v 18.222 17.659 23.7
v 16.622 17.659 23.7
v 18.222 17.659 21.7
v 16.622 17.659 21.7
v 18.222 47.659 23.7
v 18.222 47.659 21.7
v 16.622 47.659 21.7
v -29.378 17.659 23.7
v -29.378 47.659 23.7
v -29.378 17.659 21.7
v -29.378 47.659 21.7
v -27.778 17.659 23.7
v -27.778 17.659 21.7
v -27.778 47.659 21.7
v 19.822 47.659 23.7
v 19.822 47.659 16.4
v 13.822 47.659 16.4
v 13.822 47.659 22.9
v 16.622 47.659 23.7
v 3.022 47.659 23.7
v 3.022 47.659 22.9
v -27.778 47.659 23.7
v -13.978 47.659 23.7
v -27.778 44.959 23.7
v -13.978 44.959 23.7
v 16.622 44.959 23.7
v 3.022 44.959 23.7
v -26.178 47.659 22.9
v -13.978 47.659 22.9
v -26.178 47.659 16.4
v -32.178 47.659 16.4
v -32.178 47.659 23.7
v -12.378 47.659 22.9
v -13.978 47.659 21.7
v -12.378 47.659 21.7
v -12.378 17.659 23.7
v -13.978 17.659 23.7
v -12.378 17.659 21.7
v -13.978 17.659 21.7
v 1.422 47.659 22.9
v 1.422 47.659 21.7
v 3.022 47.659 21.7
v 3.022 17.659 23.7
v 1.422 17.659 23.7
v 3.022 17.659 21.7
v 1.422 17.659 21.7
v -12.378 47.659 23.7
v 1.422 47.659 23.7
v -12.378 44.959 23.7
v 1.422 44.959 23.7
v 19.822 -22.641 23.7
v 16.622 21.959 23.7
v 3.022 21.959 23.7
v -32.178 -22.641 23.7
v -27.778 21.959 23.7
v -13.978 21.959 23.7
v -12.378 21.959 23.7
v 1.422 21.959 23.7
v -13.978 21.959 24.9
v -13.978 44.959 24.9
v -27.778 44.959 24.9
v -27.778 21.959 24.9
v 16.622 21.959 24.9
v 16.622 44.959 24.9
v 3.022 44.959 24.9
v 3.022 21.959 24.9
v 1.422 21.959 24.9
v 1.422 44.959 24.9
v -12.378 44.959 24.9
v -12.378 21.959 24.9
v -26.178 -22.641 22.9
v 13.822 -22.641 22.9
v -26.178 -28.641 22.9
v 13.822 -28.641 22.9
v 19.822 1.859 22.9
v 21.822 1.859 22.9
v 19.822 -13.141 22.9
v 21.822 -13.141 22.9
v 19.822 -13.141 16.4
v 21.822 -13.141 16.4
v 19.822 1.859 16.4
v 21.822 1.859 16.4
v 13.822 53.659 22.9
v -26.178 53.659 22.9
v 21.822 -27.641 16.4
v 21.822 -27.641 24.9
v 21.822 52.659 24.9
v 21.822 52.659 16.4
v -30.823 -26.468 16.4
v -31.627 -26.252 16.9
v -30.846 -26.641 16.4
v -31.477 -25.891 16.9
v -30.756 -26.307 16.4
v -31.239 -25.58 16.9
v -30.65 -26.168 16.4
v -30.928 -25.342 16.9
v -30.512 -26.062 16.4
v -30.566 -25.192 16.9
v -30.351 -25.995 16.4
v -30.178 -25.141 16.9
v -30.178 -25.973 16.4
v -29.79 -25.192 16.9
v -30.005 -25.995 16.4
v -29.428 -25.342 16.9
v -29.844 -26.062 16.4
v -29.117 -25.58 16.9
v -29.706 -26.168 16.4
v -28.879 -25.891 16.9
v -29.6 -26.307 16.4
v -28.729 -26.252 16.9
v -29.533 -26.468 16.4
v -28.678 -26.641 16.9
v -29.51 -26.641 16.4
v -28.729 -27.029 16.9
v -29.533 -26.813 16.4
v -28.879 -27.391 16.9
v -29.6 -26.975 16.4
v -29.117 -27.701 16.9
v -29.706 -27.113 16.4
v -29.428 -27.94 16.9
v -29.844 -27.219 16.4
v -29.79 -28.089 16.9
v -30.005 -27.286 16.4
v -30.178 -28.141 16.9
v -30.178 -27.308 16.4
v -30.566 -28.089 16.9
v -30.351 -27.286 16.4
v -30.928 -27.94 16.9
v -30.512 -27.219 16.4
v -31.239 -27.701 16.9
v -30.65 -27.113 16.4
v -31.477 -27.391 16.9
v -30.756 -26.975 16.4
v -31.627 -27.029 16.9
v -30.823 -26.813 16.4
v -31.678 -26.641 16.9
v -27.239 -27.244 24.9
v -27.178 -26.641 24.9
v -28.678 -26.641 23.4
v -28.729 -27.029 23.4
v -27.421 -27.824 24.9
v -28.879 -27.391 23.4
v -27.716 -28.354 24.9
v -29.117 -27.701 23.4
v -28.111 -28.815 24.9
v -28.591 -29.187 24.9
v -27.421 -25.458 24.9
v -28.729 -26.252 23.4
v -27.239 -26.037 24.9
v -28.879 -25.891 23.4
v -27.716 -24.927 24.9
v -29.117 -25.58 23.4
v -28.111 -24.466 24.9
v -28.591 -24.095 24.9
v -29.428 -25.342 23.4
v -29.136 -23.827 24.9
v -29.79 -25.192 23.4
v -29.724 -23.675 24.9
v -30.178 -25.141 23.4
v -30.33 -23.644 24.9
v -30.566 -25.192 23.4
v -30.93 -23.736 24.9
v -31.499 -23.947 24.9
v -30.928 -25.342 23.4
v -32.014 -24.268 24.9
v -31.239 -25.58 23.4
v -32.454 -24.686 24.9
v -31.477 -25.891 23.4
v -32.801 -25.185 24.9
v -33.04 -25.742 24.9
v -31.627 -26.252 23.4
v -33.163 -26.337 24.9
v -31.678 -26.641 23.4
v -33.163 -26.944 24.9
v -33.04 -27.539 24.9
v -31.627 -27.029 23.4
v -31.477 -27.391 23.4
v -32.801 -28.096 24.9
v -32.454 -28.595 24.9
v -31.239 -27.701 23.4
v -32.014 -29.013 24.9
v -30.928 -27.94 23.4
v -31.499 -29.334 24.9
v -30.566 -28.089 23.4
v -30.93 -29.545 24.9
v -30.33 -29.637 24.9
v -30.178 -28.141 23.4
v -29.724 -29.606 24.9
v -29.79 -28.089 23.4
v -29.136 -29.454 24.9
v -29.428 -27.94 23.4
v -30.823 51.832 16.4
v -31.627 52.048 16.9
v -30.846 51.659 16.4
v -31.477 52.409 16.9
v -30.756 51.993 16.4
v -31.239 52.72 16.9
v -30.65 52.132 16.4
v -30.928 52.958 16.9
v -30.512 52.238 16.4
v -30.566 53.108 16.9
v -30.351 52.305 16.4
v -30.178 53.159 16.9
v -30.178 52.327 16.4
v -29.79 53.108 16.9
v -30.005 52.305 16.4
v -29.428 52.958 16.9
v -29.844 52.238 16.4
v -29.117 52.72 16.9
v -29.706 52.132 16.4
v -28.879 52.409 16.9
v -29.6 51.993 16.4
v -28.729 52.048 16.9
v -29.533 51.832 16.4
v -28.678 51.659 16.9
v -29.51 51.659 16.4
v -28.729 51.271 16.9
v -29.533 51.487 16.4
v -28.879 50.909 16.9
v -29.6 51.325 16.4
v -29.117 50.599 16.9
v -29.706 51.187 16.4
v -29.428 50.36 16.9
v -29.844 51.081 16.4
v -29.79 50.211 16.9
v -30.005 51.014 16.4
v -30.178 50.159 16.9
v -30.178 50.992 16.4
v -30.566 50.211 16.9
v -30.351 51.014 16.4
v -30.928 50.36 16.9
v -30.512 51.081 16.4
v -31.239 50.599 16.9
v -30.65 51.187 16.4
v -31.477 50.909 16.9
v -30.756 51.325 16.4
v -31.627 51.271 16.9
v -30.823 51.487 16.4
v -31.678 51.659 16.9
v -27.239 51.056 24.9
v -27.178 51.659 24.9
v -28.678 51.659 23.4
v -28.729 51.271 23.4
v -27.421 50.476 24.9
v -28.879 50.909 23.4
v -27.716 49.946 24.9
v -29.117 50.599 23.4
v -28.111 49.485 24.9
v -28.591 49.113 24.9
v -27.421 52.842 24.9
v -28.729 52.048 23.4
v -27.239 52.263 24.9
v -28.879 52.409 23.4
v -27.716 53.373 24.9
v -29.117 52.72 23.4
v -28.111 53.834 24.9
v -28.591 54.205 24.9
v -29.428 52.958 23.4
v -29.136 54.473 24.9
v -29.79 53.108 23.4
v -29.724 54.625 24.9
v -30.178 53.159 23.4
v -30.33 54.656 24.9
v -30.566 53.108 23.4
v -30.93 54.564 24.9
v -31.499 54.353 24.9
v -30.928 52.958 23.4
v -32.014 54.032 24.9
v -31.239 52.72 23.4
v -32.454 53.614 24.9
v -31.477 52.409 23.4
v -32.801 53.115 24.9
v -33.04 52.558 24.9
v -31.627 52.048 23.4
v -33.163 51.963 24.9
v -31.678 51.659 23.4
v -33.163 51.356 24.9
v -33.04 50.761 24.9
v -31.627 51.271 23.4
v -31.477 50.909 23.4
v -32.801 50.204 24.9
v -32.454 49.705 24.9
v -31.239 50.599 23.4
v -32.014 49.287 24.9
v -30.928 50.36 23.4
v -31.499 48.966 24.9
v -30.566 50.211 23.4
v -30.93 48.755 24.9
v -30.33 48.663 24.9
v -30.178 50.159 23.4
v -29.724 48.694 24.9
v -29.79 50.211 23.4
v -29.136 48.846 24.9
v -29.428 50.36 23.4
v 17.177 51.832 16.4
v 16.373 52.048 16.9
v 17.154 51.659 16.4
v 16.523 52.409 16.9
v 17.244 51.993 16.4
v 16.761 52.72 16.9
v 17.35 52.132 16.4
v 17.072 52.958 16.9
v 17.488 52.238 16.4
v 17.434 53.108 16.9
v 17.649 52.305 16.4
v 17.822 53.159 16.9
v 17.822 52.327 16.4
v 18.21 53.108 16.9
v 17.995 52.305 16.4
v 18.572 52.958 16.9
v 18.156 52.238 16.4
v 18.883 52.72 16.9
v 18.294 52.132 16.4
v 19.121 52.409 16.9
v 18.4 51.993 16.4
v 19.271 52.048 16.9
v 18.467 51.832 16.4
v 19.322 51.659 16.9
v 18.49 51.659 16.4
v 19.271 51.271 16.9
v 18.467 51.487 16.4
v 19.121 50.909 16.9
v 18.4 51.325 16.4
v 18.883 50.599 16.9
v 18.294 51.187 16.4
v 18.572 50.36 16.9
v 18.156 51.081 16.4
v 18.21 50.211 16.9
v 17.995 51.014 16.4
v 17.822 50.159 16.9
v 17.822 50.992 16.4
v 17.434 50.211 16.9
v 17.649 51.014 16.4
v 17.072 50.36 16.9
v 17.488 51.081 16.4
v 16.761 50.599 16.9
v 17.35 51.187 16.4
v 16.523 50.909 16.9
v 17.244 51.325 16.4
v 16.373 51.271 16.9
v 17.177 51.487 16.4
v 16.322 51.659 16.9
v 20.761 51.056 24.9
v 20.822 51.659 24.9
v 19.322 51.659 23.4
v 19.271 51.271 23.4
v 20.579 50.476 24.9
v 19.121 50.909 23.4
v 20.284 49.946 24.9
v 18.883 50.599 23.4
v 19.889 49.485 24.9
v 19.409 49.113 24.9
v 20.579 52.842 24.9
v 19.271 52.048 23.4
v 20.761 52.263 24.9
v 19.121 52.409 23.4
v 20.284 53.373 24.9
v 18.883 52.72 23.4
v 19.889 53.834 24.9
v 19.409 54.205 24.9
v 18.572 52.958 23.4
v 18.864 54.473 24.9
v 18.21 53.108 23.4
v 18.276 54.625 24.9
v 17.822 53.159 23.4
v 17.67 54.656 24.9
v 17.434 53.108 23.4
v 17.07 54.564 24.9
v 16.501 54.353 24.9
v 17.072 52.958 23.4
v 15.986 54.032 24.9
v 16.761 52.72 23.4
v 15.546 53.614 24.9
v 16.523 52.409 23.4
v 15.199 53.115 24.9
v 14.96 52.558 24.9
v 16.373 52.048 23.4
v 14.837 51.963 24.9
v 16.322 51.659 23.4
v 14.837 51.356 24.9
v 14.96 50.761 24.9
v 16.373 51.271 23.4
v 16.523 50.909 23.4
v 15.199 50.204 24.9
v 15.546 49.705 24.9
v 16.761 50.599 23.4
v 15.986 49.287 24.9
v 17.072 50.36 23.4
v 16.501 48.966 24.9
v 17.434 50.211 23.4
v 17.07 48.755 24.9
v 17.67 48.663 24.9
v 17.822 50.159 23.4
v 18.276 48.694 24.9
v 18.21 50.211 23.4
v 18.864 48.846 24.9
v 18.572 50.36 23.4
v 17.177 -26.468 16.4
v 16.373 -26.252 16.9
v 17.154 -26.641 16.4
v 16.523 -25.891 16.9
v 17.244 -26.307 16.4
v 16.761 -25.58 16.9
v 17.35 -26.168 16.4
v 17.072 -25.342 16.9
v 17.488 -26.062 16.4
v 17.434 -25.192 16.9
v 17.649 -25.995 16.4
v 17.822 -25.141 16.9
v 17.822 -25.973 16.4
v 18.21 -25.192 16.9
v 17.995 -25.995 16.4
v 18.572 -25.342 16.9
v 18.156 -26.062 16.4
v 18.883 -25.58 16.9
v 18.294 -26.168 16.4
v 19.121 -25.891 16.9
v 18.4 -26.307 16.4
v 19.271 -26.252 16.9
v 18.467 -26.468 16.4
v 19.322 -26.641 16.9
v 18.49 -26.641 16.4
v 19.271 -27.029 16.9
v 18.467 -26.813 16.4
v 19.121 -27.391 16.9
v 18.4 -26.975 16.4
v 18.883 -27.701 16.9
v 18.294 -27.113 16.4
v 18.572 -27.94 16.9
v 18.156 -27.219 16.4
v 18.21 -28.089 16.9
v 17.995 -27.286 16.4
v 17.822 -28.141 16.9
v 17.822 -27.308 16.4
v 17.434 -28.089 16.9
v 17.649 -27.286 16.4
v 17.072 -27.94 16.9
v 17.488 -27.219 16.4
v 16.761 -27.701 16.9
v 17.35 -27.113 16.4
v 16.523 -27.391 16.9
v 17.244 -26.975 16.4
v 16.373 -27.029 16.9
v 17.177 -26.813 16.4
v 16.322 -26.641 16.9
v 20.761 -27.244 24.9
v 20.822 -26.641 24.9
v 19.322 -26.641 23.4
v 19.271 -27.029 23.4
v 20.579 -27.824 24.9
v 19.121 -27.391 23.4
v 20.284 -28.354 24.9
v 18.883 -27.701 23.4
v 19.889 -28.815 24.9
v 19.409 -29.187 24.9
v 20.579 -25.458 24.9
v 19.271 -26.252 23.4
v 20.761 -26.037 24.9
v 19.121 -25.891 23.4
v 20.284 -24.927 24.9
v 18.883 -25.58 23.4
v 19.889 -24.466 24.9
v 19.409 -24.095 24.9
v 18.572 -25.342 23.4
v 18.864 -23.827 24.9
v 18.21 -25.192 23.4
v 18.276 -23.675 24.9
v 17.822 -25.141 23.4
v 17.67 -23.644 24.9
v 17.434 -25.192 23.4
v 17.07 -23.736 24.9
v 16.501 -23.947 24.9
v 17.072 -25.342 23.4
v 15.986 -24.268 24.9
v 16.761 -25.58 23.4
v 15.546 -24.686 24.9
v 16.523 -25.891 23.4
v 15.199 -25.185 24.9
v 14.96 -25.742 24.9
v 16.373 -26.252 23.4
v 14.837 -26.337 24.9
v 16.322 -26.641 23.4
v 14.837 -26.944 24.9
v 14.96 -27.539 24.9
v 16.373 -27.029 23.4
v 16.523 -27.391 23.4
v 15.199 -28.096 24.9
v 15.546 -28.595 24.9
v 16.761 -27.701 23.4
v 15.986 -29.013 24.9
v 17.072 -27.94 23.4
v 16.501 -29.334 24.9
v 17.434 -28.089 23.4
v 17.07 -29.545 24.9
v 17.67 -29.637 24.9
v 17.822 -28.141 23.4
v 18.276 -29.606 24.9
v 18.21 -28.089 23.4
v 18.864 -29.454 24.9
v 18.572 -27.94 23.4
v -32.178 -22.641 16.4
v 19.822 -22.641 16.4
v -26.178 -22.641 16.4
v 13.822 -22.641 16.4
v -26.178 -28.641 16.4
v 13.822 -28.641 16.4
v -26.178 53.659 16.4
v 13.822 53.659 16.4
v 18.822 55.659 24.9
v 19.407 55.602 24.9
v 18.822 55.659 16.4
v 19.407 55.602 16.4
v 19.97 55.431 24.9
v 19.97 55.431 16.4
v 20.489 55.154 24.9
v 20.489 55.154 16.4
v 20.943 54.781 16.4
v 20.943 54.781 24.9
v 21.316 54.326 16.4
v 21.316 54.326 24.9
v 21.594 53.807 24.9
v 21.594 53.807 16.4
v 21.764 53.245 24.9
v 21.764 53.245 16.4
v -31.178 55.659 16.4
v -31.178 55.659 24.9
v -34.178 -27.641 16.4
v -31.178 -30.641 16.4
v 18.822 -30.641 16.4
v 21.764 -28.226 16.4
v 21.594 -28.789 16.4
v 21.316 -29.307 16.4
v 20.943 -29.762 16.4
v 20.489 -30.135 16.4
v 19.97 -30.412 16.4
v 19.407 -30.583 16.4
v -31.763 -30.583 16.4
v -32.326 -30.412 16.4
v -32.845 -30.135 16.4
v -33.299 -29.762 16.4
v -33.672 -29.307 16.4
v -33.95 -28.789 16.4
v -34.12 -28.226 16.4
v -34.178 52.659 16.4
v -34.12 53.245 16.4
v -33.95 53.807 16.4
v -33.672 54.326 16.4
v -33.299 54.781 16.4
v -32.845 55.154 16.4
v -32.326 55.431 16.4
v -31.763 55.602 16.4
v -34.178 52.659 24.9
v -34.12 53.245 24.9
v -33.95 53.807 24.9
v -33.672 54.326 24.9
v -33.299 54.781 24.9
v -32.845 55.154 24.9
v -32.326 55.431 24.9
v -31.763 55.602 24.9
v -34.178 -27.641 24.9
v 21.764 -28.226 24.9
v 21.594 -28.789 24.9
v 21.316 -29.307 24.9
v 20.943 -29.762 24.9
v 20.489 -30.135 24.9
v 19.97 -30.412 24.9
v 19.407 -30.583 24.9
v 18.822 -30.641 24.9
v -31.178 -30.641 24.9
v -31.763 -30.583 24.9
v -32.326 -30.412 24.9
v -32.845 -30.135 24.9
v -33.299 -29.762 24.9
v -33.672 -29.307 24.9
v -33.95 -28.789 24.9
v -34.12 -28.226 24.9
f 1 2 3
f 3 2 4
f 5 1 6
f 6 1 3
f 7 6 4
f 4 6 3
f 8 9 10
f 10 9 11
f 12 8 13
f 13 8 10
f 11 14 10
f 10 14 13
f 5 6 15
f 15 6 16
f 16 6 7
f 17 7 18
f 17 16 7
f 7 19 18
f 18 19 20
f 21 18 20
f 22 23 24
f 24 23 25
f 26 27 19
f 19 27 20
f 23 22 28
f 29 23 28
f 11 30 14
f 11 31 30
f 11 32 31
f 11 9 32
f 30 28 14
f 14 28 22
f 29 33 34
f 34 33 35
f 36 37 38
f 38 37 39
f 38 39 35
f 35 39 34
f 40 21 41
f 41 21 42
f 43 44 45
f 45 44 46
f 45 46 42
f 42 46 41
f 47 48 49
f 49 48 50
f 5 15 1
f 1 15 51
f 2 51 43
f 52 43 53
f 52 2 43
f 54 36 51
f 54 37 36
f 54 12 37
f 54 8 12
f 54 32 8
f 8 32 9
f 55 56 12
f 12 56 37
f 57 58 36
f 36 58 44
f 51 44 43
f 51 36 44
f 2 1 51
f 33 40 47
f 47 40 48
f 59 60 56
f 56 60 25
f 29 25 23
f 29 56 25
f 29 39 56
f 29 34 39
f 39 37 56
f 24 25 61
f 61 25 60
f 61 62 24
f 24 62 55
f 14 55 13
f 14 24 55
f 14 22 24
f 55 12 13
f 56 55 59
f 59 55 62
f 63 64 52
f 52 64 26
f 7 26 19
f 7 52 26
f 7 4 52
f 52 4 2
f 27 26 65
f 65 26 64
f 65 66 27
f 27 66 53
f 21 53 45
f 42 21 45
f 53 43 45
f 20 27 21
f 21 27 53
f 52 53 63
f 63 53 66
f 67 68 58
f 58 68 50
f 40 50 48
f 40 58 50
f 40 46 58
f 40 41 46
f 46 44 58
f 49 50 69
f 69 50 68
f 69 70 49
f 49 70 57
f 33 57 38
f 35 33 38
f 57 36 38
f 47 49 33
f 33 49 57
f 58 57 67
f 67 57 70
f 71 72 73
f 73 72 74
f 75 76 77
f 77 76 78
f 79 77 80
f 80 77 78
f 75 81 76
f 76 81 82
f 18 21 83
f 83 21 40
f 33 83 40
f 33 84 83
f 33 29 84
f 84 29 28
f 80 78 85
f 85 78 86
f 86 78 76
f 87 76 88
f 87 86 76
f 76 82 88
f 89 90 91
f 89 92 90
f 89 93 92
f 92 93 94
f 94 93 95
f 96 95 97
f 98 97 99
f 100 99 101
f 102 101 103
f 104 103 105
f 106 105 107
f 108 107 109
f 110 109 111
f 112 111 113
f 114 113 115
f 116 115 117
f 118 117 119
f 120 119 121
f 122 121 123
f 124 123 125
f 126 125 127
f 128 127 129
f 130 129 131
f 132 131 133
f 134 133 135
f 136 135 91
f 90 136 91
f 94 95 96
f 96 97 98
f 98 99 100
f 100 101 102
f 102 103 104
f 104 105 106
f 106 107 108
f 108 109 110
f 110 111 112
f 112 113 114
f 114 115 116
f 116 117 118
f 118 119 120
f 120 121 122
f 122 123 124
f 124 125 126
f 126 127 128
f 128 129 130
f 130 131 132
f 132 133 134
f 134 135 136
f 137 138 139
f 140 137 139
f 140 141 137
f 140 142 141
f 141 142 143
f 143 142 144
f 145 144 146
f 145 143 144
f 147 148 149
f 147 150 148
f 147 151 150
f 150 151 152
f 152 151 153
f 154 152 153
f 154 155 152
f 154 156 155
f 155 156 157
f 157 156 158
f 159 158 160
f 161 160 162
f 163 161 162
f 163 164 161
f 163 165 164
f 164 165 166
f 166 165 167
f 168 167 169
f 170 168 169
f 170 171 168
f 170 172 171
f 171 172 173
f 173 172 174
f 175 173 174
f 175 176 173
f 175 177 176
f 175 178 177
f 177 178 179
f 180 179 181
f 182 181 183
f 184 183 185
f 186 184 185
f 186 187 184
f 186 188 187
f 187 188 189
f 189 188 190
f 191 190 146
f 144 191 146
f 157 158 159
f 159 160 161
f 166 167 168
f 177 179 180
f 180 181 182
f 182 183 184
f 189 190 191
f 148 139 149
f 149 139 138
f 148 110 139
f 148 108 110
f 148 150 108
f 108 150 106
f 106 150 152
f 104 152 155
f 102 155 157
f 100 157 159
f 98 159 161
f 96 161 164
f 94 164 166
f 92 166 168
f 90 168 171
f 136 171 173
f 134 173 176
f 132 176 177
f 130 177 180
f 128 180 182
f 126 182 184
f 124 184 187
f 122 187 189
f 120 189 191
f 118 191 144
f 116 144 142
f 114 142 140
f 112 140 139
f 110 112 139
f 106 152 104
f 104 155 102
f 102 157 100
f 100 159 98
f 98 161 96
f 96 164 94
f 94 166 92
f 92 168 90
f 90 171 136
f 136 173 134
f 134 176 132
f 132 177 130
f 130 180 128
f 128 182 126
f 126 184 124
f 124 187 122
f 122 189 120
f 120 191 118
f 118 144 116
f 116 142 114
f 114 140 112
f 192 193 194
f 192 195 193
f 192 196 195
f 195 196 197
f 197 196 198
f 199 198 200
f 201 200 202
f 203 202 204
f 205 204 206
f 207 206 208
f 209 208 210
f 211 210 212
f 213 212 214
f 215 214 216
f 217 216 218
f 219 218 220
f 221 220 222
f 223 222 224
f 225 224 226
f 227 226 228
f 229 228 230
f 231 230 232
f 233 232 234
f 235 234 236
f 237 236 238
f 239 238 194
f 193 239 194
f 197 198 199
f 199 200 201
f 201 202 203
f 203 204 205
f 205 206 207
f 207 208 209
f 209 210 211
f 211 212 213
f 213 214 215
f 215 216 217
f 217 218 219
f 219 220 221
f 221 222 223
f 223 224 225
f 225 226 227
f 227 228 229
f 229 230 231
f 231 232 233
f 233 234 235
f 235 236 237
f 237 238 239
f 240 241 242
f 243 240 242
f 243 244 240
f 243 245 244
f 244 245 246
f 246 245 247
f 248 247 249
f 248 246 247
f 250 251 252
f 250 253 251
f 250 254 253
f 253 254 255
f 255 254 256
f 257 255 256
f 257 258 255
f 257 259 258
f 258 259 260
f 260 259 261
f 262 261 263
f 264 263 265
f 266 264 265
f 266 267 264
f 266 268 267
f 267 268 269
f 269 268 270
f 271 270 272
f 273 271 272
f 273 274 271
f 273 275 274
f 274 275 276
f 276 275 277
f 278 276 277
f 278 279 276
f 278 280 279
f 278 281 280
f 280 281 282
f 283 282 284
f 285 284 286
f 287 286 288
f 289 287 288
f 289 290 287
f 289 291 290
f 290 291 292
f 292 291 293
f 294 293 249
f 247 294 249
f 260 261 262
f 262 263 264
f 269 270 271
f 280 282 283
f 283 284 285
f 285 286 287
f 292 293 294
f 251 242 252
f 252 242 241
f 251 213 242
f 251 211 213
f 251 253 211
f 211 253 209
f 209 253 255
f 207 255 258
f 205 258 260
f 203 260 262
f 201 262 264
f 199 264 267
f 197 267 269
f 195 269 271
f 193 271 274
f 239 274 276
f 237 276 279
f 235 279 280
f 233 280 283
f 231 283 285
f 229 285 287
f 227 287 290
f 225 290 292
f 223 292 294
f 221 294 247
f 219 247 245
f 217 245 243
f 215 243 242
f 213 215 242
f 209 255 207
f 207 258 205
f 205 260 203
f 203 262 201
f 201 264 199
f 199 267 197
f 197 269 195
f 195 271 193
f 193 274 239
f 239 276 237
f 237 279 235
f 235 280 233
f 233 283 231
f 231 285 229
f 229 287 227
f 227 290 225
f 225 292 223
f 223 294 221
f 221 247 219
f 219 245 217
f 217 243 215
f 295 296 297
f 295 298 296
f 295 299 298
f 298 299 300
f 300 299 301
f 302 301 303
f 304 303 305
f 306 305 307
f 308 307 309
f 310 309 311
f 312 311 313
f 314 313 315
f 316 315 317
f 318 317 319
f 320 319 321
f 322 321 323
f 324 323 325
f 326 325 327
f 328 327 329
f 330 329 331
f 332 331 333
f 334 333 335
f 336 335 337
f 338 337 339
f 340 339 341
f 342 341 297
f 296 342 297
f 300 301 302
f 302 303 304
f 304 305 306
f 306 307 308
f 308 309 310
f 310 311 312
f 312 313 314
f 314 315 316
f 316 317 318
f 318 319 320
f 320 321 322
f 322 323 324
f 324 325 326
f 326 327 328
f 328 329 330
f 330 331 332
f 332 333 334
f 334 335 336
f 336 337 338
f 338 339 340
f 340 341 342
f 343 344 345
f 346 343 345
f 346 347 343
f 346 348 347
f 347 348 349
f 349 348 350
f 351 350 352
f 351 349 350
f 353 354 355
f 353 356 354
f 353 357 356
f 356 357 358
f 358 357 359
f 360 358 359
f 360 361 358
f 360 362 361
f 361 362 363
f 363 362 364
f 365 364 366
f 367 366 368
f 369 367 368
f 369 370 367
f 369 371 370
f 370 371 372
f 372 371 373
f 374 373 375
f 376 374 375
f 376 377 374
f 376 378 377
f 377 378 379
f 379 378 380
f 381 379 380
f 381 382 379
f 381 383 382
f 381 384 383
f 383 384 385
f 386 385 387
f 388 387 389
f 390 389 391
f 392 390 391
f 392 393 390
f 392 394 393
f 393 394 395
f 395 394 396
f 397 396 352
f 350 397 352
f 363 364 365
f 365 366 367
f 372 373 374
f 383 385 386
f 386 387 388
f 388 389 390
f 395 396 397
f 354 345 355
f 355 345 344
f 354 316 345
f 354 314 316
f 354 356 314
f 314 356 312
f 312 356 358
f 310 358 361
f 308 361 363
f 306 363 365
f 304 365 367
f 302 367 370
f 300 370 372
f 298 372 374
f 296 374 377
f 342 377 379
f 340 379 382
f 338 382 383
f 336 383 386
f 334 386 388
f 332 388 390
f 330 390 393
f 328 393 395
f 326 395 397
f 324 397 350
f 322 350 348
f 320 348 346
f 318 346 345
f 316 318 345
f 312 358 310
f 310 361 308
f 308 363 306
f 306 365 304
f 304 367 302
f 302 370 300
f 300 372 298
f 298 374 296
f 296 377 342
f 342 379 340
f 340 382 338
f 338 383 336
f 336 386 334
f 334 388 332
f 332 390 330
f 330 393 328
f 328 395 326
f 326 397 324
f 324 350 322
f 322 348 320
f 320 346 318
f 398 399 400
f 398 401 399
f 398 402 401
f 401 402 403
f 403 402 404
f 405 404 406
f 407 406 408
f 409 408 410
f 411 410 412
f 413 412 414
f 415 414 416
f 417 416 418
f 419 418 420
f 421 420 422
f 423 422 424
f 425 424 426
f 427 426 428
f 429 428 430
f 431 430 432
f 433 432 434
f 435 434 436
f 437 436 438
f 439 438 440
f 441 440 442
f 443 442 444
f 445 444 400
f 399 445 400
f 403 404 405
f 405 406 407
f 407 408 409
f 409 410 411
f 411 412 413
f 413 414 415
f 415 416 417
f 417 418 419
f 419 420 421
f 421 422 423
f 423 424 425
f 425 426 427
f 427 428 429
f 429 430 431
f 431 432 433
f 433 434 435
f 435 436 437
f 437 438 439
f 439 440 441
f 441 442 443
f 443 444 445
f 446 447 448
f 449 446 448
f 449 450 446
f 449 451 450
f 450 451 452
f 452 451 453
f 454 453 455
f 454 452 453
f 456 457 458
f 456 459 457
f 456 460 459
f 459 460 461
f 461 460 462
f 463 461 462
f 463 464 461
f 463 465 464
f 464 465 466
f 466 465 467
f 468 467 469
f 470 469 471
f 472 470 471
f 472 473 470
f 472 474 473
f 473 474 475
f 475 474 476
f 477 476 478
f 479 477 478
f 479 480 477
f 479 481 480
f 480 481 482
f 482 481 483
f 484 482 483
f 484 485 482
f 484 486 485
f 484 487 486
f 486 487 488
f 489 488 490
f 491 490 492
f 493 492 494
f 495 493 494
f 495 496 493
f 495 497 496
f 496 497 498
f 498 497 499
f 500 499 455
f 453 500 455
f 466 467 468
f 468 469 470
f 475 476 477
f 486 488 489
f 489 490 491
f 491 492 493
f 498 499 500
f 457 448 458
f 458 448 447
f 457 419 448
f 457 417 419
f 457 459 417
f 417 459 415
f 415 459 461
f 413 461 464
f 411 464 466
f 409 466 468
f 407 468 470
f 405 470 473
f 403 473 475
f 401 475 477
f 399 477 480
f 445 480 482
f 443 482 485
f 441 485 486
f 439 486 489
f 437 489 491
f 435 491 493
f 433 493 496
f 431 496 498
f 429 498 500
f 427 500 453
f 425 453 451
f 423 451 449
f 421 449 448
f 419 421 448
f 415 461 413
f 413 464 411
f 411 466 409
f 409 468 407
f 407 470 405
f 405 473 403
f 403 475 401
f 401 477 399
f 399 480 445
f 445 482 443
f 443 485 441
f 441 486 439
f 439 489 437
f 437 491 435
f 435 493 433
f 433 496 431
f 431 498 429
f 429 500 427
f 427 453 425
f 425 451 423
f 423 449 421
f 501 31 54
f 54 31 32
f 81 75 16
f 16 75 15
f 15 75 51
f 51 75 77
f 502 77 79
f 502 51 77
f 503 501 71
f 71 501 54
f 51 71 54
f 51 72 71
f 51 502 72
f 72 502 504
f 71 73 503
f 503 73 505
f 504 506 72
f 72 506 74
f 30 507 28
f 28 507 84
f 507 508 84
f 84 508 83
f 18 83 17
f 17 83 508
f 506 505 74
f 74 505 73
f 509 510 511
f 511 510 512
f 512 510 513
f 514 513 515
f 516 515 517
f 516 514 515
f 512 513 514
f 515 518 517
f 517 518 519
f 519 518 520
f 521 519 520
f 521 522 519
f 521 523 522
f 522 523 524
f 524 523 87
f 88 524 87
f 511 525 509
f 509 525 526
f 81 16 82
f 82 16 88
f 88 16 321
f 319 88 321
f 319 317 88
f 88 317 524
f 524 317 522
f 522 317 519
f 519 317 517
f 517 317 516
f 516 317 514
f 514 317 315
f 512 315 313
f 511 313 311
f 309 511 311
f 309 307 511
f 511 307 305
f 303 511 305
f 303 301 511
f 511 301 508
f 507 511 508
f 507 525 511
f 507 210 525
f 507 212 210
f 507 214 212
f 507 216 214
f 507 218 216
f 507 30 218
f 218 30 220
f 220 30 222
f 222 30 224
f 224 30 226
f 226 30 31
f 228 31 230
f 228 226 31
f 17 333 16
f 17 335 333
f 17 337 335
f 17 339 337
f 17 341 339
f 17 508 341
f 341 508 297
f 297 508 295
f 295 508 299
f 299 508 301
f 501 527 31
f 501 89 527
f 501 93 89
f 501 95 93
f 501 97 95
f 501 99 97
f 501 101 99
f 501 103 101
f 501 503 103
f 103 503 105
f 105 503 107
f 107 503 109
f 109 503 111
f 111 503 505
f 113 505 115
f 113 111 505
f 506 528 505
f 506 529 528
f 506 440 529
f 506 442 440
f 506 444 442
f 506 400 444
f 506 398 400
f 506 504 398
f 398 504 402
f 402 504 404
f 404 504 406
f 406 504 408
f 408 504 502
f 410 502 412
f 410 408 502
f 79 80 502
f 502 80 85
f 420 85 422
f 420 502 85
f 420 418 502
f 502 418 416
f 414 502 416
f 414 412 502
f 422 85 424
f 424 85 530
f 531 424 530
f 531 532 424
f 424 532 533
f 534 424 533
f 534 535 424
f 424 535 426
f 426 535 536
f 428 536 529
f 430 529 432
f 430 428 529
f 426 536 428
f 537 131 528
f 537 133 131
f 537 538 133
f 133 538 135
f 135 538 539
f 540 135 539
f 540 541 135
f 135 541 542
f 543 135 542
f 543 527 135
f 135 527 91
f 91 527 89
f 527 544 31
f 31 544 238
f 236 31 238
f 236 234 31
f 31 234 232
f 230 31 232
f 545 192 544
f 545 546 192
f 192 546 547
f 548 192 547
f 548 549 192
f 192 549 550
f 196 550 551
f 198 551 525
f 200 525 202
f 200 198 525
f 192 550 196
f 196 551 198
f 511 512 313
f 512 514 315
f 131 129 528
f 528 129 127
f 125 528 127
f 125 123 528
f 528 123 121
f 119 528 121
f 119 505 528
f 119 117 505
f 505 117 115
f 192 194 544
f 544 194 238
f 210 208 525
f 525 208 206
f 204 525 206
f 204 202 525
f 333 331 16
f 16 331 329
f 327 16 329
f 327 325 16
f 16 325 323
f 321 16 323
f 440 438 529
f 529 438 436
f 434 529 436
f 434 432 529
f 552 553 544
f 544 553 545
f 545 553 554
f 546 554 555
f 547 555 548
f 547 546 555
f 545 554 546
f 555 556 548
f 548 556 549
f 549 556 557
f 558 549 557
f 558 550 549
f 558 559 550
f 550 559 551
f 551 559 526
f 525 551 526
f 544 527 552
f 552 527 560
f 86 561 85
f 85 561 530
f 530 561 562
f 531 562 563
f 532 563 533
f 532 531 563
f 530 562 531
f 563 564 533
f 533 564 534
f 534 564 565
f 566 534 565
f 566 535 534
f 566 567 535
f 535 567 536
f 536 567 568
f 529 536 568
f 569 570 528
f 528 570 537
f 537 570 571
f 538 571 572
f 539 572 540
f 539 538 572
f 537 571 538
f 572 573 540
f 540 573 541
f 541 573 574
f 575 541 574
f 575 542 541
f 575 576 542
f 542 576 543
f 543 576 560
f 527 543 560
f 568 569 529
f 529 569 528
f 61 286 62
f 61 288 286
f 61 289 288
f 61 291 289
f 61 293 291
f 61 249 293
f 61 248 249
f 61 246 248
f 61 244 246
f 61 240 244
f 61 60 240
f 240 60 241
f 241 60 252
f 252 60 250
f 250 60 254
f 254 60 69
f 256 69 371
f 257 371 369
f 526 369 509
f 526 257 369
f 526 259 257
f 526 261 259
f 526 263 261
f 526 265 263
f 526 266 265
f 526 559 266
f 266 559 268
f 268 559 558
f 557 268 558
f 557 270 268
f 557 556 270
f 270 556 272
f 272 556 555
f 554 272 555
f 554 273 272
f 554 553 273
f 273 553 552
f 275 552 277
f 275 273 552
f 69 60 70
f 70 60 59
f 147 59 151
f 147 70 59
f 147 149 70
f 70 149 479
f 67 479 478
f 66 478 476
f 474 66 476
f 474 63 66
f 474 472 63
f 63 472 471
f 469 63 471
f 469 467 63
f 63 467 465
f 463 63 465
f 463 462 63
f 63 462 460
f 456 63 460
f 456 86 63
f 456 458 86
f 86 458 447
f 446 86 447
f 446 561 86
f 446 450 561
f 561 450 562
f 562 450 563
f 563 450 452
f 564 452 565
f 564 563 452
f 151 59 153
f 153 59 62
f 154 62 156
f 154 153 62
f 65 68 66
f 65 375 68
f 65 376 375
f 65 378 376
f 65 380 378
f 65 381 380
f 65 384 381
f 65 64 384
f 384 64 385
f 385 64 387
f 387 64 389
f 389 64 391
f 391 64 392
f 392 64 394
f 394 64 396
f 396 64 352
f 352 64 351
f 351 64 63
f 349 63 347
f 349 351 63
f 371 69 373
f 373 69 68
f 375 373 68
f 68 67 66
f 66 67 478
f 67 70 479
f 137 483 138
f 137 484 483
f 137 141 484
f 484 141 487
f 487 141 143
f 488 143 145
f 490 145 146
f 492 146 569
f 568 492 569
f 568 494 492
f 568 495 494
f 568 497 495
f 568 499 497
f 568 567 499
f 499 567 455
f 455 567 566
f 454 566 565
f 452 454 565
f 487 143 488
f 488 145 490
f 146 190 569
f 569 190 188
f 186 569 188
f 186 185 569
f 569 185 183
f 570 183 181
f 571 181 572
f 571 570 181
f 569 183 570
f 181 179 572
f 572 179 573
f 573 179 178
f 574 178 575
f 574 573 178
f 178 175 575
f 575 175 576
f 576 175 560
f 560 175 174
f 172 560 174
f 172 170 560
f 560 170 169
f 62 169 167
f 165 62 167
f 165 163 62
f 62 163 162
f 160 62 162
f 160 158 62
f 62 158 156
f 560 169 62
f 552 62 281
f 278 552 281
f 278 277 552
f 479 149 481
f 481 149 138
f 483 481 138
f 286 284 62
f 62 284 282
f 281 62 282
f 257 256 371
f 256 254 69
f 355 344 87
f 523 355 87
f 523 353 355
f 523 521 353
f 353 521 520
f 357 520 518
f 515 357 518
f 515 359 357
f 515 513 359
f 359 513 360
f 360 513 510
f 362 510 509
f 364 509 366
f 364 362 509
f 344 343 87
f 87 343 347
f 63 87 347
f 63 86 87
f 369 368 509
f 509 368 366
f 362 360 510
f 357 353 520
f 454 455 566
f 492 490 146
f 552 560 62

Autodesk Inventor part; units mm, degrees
ref_plane "YZ Plane" through (0, 0, 0) normal (1, 0, 0) x (0, 1, 0)
ref_plane "XZ Plane" through (0, 0, 0) normal (0, 1, 0) x (-1, 0, 0)
ref_plane "XY Plane" through (0, 0, 0) normal (0, 0, 1) x (1, 0, 0)
sketch "Sketch1" plane through (0, 0, 0) normal (0, 0, 1) x (1, 0, 0)
  line L0 (-34.1779, 55.6594) -> (21.8221, 55.6594)
  line L1 (21.8221, 55.6594) -> (21.8221, -30.6406)
  line L2 (21.8221, -30.6406) -> (-34.1779, -30.6406)
  line L3 (-34.1779, -30.6406) -> (-34.1779, 55.6594)
  point P0 (0, 0)
  dimension "d0" = 56
  dimension "d1" = 86.3
extrude "Extrusion1" add sketch "Sketch1" along normal blind 2
sketch "Sketch2" plane through (0, 0, 2) normal (0, 0, 1) x (1, 0, 0)
  line L0 (-34.1779, 55.6594) -> (21.8221, 55.6594)
  line L1 (21.8221, 55.6594) -> (21.8221, -30.6406)
  line L2 (21.8221, -30.6406) -> (-34.1779, -30.6406)
  line L3 (-34.1779, -30.6406) -> (-34.1779, 55.6594)
  line L4 (-32.1779, 53.6594) -> (19.8221, 53.6594)
  line L5 (19.8221, 53.6594) -> (19.8221, -28.6406)
  line L6 (19.8221, -28.6406) -> (-32.1779, -28.6406)
  line L7 (-32.1779, -28.6406) -> (-32.1779, 53.6594)
  point P0 (0, 0)
  dimension "d4" = 2
  dimension "d5" = 2
  dimension "d6" = 2
  dimension "d7" = 2
extrude "Extrusion2" add sketch "Sketch2" along normal blind 14.4
sketch "Sketch3" plane through (0, 0, 2) normal (0, 0, 1) x (1, 0, 0)
  line L0 (-34.1779, 55.6594) -> (-26.1779, 55.6594)
  line L1 (-26.1779, 55.6594) -> (-26.1779, 47.6594)
  line L2 (-26.1779, 47.6594) -> (-34.1779, 47.6594)
  line L3 (-34.1779, 47.6594) -> (-34.1779, 55.6594)
  line L4 (21.8221, 55.6594) -> (13.8221, 55.6594)
  line L5 (13.8221, 55.6594) -> (13.8221, 47.6594)
  line L6 (13.8221, 47.6594) -> (21.8221, 47.6594)
  line L7 (21.8221, 47.6594) -> (21.8221, 55.6594)
  line L8 (-34.1779, -30.6406) -> (-26.1779, -30.6406)
  line L9 (-26.1779, -30.6406) -> (-26.1779, -22.6406)
  line L10 (-26.1779, -22.6406) -> (-34.1779, -22.6406)
  line L11 (-34.1779, -22.6406) -> (-34.1779, -30.6406)
  line L12 (21.8221, -30.6406) -> (13.8221, -30.6406)
  line L13 (13.8221, -30.6406) -> (13.8221, -22.6406)
  line L14 (13.8221, -22.6406) -> (21.8221, -22.6406)
  line L15 (21.8221, -22.6406) -> (21.8221, -30.6406)
  line L16 (-34.1779, -30.6406) -> (21.8221, -30.6406) projected
  point P0 (0, 0)
  dimension "d10" = 8
  dimension "d11" = 8
  dimension "d12" = 8
  dimension "d13" = 8
  dimension "d14" = 8
  dimension "d15" = 8
  dimension "d16" = 8
  dimension "d17" = 8
extrude "Extrusion3" add sketch "Sketch3" along normal blind 14.4
sketch "Sketch4" plane through (0, 0, 16.4) normal (0, 0, 1) x (1, 0, 0)
  line L0 (-26.1779, -22.6406) -> (-32.1779, -22.6406) projected
  line L1 (19.8221, -22.6406) -> (13.8221, -22.6406) projected
  line L2 (21.8221, 55.6594) -> (21.8221, -30.6406) projected
  line L3 (21.8221, 55.6594) -> (-34.1779, 55.6594) projected
  line L4 (-34.1779, -30.6406) -> (-34.1779, 55.6594) projected
  point P0 (0, 0)
  point P1 (-30.1779, 51.6594)
  point P2 (17.8221, 51.6594)
  point P3 (-30.5754, -26.6406)
  point P4 (17.8221, -26.6406)
  dimension "d20" = 4
  dimension "d21" = 4
  dimension "d22" = 4
  dimension "d23" = 4
  dimension "d24" = 4
  dimension "d25" = 4
  dimension "d26" = 4
hole "Hole1" at (-30.1779, 51.6594, 16.4) at (17.8221, 51.6594, 16.4) at (-30.5754, -26.6406, 16.4) at (17.8221, -26.6406, 16.4) direction (0, 0, -1) diameter 3 depth 6 tip angle 118
fillet "Fillet1" radius 3 4 edges at (-34.1779, 55.6594, 8.2) (21.8221, 55.6594, 8.2) (-34.1779, -30.6406, 8.2) (21.8221, -30.6406, 8.2)
sketch "Sketch5" plane through (0, 0, 2) normal (0, 0, 1) x (1, 0, 0)
  line L0 (-32.1779, 47.6594) -> (19.8221, 47.6594)
  line L1 (19.8221, 47.6594) -> (19.8221, 43.3594)
  line L2 (19.8221, 43.3594) -> (-32.1779, 43.3594)
  line L3 (-32.1779, 43.3594) -> (-32.1779, 47.6594)
  line L4 (19.8221, 47.6594) -> (19.8221, -22.6406) projected
  line L5 (-32.1779, -22.6406) -> (19.8221, -22.6406)
  line L6 (19.8221, -22.6406) -> (19.8221, -18.3406)
  line L7 (19.8221, -18.3406) -> (-32.1779, -18.3406)
  line L8 (-32.1779, -18.3406) -> (-32.1779, -22.6406)
  point P0 (0, 0)
  dimension "d35" = 4.3
  dimension "d36" = 4.3
extrude "Extrusion4" add sketch "Sketch5" along normal blind 2.5
sketch "Sketch6" plane through (0, 0, 16.4) normal (0, 0, 1) x (1, 0, 0)
  line L0 (-34.1779, 55.6594) -> (21.8221, 55.6594)
  line L1 (21.8221, 55.6594) -> (21.8221, -30.6406)
  line L2 (21.8221, -30.6406) -> (-34.1779, -30.6406)
  line L3 (-34.1779, -30.6406) -> (-34.1779, 55.6594)
  line L4 (18.8221, 55.6594) -> (-31.1779, 55.6594) projected
  line L5 (-34.1779, 52.6594) -> (-34.1779, -27.6406) projected
  line L6 (21.8221, -27.6406) -> (21.8221, 52.6594) projected
  line L7 (-31.1779, -30.6406) -> (18.8221, -30.6406) projected
  point P0 (0, 0)
extrude "Extrusion5" add sketch "Sketch6" along normal blind 8.5
sketch "Sketch7" plane through (-31.1779, -30.6406, 0) normal (0, -1, 0) x (1, 0, 0)
  line L0 (-3, 16.4) -> (53, 16.4)
  line L1 (53, 16.4) -> (53, 0)
  line L2 (53, 0) -> (-3, 0)
  line L3 (-3, 0) -> (-3, 16.4)
  point P0 (31.1779, 0)
extrude "Extrusion6" cut sketch "Sketch7" against normal blind 300
fillet "Fillet2" radius 3 4 edges at (-34.1779, -30.6406, 20.65) (21.8221, -30.6406, 20.65) (-34.1779, 55.6594, 20.65) (21.8221, 55.6594, 20.65)
sketch "Sketch8" plane through (0, 0, 16.4) normal (0, 0, -1) x (-1, 0, 0)
  line L0 (26.1779, -28.6406) -> (-13.8221, -28.6406)
  line L1 (-13.8221, -28.6406) -> (-13.8221, 53.6594)
  line L2 (-13.8221, 53.6594) -> (26.1779, 53.6594)
  line L3 (26.1779, 53.6594) -> (26.1779, -28.6406)
  line L4 (-19.8221, -22.6406) -> (32.1779, -22.6406)
  line L5 (32.1779, -22.6406) -> (32.1779, 47.6594)
  line L6 (32.1779, 47.6594) -> (-19.8221, 47.6594)
  line L7 (-19.8221, 47.6594) -> (-19.8221, -22.6406)
  line L8 (31.1779, -30.6406) -> (-18.8221, -30.6406) projected
  line L9 (-18.8221, 55.6594) -> (31.1779, 55.6594) projected
  line L10 (34.1779, 52.6594) -> (34.1779, -27.6406) projected
  line L11 (-21.8221, -27.6406) -> (-21.8221, 52.6594) projected
  point P0 (0, 0)
  dimension "d44" = 8
  dimension "d45" = 8
  dimension "d46" = 8
  dimension "d47" = 8
  dimension "d48" = 2
  dimension "d49" = 2
  dimension "d50" = 2
  dimension "d51" = 2
extrude "Extrusion7" cut sketch "Sketch8" against normal blind 6.5
sketch "Sketch9" plane through (0, 0, 24.9) normal (0, 0, 1) x (1, 0, 0)
  line L0 (-34.1779, 52.6594) -> (-34.1779, -27.6406) projected
  line L1 (18.8221, 55.6594) -> (-31.1779, 55.6594) projected
  line L2 (21.8221, -27.6406) -> (21.8221, 52.6594) projected
  line L3 (-31.1779, -30.6406) -> (18.8221, -30.6406) projected
  point P0 (0, 0)
  point P1 (-30.1779, 51.6594)
  point P2 (17.8221, 51.6594)
  point P3 (-30.1779, -26.6406)
  point P4 (17.8221, -26.6406)
  dimension "d54" = 4
  dimension "d55" = 4
  dimension "d56" = 4
  dimension "d57" = 4
  dimension "d58" = 4
  dimension "d59" = 4
  dimension "d60" = 4
  dimension "d61" = 4
hole "Hole2" at (-30.1779, 51.6594, 24.9) at (17.8221, 51.6594, 24.9) at (-30.1779, -26.6406, 24.9) at (17.8221, -26.6406, 24.9) direction (0, 0, -1) diameter 3 depth 8 tip angle 118 countersink diameter 6 countersink angle 90
sketch "Sketch10" plane through (21.8221, -27.6406, 24.9) normal (1, 0, 0) x (0, 0, -1)
  line L0 (8.5, 5) -> (8.5, 75.3) projected
  line L1 (8.5, 14.5) -> (2, 14.5)
  line L2 (2, 14.5) -> (2, 29.5)
  line L3 (2, 29.5) -> (8.5, 29.5)
  line L4 (8.5, 29.5) -> (8.5, 14.5)
  line L5 (0, -3) -> (8.5, -3) projected
  point P0 (24.9, 27.6406)
  dimension "d69" = 17.5
  dimension "d70" = 32.5
  dimension "d71" = 6.5
extrude "Extrusion8" cut sketch "Sketch10" against normal blind 6.5
sketch "Sketch11" plane through (0, 0, 22.9) normal (0, 0, -1) x (-1, 0, 0)
  line L0 (32.1779, 47.6594) -> (32.1779, -22.6406) projected
  line L1 (-19.8221, -22.6406) -> (32.1779, -22.6406)
  line L2 (32.1779, -22.6406) -> (32.1779, 47.6594)
  line L3 (32.1779, 47.6594) -> (-19.8221, 47.6594)
  line L4 (-19.8221, 47.6594) -> (-19.8221, -22.6406)
  line L5 (-19.8221, 47.6594) -> (-13.8221, 47.6594) projected
  point P0 (0, 0)
extrude "Extrusion9" cut sketch "Sketch11" against normal blind 0.8
sketch "Sketch12" plane through (0, 0, 24.9) normal (0, 0, 1) x (1, 0, 0)
  line L0 (-27.7779, 44.9594) -> (-13.9779, 44.9594)
  line L1 (-13.9779, 44.9594) -> (-13.9779, 21.9594)
  line L2 (-13.9779, 21.9594) -> (-27.7779, 21.9594)
  line L3 (-27.7779, 21.9594) -> (-27.7779, 44.9594)
  line L4 (-12.3779, 44.9594) -> (1.4221, 44.9594)
  line L5 (1.4221, 44.9594) -> (1.4221, 21.9594)
  line L6 (1.4221, 21.9594) -> (-12.3779, 21.9594)
  line L7 (-12.3779, 21.9594) -> (-12.3779, 44.9594)
  line L8 (3.0221, 44.9594) -> (16.6221, 44.9594)
  line L9 (16.6221, 44.9594) -> (16.6221, 21.9594)
  line L10 (16.6221, 21.9594) -> (3.0221, 21.9594)
  line L11 (3.0221, 21.9594) -> (3.0221, 44.9594)
  line L12 (18.8221, 55.6594) -> (-31.1779, 55.6594) projected
  line L13 (-34.1779, 52.6594) -> (-34.1779, -27.6406) projected
  point P0 (0, 0)
  dimension "d76" = 10.7
  dimension "d77" = 33.7
  dimension "d78" = 6.4
  dimension "d79" = 20.2
  dimension "d80" = 13.8
  dimension "d81" = 13.8
  dimension "d82" = 21.8
  dimension "d83" = 35.6
  dimension "d84" = 37.2
  dimension "d85" = 50.8
  dimension "d86" = 13.6
  dimension "d87" = 1.6
  dimension "d88" = 1.6
extrude "Extrusion10" cut sketch "Sketch12" against normal blind 3
sketch "Sketch13" plane through (0, 0, 23.7) normal (0, 0, -1) x (-1, 0, 0)
  line L0 (-19.8221, 47.6594) -> (32.1779, 47.6594) projected
  line L1 (-3.0221, 47.6594) -> (-1.4221, 47.6594)
  line L2 (-1.4221, 47.6594) -> (-1.4221, 17.6594)
  line L3 (-1.4221, 17.6594) -> (-3.0221, 17.6594)
  line L4 (-3.0221, 17.6594) -> (-3.0221, 47.6594)
  line L5 (12.3779, 47.6594) -> (13.9779, 47.6594)
  line L6 (13.9779, 47.6594) -> (13.9779, 17.6594)
  line L7 (13.9779, 17.6594) -> (12.3779, 17.6594)
  line L8 (12.3779, 17.6594) -> (12.3779, 47.6594)
  line L9 (-3.0221, 44.9594) -> (-3.0221, 21.9594) projected
  line L10 (-1.4221, 21.9594) -> (-1.4221, 44.9594) projected
  line L11 (12.3779, 44.9594) -> (12.3779, 21.9594) projected
  line L12 (13.9779, 21.9594) -> (13.9779, 44.9594) projected
  point P0 (0, 0)
  dimension "d91" = 30
extrude "Extrusion11" add sketch "Sketch13" along normal blind 2
sketch "Sketch14" plane through (0, 0, 23.7) normal (0, 0, -1) x (-1, 0, 0)
  line L0 (-19.8221, 47.6594) -> (-3.0221, 47.6594) projected
  line L1 (-16.6221, 47.6594) -> (-18.2221, 47.6594)
  line L2 (-18.2221, 47.6594) -> (-18.2221, 17.6594)
  line L3 (-18.2221, 17.6594) -> (-16.6221, 17.6594)
  line L4 (-16.6221, 17.6594) -> (-16.6221, 47.6594)
  line L5 (27.7779, 47.6594) -> (29.3779, 47.6594)
  line L6 (29.3779, 47.6594) -> (29.3779, 17.6594)
  line L7 (29.3779, 17.6594) -> (27.7779, 17.6594)
  line L8 (27.7779, 17.6594) -> (27.7779, 47.6594)
  line L9 (-16.6221, 21.9594) -> (-16.6221, 44.9594) projected
  line L10 (27.7779, 44.9594) -> (27.7779, 21.9594) projected
  line L11 (-3.0221, 17.6594) -> (-1.4221, 17.6594) projected
  line L12 (12.3779, 17.6594) -> (13.9779, 17.6594) projected
  point P0 (0, 0)
  dimension "d94" = 1.6
  dimension "d95" = 1.6
extrude "Extrusion12" add sketch "Sketch14" along normal blind 2
properties part number "cover"
